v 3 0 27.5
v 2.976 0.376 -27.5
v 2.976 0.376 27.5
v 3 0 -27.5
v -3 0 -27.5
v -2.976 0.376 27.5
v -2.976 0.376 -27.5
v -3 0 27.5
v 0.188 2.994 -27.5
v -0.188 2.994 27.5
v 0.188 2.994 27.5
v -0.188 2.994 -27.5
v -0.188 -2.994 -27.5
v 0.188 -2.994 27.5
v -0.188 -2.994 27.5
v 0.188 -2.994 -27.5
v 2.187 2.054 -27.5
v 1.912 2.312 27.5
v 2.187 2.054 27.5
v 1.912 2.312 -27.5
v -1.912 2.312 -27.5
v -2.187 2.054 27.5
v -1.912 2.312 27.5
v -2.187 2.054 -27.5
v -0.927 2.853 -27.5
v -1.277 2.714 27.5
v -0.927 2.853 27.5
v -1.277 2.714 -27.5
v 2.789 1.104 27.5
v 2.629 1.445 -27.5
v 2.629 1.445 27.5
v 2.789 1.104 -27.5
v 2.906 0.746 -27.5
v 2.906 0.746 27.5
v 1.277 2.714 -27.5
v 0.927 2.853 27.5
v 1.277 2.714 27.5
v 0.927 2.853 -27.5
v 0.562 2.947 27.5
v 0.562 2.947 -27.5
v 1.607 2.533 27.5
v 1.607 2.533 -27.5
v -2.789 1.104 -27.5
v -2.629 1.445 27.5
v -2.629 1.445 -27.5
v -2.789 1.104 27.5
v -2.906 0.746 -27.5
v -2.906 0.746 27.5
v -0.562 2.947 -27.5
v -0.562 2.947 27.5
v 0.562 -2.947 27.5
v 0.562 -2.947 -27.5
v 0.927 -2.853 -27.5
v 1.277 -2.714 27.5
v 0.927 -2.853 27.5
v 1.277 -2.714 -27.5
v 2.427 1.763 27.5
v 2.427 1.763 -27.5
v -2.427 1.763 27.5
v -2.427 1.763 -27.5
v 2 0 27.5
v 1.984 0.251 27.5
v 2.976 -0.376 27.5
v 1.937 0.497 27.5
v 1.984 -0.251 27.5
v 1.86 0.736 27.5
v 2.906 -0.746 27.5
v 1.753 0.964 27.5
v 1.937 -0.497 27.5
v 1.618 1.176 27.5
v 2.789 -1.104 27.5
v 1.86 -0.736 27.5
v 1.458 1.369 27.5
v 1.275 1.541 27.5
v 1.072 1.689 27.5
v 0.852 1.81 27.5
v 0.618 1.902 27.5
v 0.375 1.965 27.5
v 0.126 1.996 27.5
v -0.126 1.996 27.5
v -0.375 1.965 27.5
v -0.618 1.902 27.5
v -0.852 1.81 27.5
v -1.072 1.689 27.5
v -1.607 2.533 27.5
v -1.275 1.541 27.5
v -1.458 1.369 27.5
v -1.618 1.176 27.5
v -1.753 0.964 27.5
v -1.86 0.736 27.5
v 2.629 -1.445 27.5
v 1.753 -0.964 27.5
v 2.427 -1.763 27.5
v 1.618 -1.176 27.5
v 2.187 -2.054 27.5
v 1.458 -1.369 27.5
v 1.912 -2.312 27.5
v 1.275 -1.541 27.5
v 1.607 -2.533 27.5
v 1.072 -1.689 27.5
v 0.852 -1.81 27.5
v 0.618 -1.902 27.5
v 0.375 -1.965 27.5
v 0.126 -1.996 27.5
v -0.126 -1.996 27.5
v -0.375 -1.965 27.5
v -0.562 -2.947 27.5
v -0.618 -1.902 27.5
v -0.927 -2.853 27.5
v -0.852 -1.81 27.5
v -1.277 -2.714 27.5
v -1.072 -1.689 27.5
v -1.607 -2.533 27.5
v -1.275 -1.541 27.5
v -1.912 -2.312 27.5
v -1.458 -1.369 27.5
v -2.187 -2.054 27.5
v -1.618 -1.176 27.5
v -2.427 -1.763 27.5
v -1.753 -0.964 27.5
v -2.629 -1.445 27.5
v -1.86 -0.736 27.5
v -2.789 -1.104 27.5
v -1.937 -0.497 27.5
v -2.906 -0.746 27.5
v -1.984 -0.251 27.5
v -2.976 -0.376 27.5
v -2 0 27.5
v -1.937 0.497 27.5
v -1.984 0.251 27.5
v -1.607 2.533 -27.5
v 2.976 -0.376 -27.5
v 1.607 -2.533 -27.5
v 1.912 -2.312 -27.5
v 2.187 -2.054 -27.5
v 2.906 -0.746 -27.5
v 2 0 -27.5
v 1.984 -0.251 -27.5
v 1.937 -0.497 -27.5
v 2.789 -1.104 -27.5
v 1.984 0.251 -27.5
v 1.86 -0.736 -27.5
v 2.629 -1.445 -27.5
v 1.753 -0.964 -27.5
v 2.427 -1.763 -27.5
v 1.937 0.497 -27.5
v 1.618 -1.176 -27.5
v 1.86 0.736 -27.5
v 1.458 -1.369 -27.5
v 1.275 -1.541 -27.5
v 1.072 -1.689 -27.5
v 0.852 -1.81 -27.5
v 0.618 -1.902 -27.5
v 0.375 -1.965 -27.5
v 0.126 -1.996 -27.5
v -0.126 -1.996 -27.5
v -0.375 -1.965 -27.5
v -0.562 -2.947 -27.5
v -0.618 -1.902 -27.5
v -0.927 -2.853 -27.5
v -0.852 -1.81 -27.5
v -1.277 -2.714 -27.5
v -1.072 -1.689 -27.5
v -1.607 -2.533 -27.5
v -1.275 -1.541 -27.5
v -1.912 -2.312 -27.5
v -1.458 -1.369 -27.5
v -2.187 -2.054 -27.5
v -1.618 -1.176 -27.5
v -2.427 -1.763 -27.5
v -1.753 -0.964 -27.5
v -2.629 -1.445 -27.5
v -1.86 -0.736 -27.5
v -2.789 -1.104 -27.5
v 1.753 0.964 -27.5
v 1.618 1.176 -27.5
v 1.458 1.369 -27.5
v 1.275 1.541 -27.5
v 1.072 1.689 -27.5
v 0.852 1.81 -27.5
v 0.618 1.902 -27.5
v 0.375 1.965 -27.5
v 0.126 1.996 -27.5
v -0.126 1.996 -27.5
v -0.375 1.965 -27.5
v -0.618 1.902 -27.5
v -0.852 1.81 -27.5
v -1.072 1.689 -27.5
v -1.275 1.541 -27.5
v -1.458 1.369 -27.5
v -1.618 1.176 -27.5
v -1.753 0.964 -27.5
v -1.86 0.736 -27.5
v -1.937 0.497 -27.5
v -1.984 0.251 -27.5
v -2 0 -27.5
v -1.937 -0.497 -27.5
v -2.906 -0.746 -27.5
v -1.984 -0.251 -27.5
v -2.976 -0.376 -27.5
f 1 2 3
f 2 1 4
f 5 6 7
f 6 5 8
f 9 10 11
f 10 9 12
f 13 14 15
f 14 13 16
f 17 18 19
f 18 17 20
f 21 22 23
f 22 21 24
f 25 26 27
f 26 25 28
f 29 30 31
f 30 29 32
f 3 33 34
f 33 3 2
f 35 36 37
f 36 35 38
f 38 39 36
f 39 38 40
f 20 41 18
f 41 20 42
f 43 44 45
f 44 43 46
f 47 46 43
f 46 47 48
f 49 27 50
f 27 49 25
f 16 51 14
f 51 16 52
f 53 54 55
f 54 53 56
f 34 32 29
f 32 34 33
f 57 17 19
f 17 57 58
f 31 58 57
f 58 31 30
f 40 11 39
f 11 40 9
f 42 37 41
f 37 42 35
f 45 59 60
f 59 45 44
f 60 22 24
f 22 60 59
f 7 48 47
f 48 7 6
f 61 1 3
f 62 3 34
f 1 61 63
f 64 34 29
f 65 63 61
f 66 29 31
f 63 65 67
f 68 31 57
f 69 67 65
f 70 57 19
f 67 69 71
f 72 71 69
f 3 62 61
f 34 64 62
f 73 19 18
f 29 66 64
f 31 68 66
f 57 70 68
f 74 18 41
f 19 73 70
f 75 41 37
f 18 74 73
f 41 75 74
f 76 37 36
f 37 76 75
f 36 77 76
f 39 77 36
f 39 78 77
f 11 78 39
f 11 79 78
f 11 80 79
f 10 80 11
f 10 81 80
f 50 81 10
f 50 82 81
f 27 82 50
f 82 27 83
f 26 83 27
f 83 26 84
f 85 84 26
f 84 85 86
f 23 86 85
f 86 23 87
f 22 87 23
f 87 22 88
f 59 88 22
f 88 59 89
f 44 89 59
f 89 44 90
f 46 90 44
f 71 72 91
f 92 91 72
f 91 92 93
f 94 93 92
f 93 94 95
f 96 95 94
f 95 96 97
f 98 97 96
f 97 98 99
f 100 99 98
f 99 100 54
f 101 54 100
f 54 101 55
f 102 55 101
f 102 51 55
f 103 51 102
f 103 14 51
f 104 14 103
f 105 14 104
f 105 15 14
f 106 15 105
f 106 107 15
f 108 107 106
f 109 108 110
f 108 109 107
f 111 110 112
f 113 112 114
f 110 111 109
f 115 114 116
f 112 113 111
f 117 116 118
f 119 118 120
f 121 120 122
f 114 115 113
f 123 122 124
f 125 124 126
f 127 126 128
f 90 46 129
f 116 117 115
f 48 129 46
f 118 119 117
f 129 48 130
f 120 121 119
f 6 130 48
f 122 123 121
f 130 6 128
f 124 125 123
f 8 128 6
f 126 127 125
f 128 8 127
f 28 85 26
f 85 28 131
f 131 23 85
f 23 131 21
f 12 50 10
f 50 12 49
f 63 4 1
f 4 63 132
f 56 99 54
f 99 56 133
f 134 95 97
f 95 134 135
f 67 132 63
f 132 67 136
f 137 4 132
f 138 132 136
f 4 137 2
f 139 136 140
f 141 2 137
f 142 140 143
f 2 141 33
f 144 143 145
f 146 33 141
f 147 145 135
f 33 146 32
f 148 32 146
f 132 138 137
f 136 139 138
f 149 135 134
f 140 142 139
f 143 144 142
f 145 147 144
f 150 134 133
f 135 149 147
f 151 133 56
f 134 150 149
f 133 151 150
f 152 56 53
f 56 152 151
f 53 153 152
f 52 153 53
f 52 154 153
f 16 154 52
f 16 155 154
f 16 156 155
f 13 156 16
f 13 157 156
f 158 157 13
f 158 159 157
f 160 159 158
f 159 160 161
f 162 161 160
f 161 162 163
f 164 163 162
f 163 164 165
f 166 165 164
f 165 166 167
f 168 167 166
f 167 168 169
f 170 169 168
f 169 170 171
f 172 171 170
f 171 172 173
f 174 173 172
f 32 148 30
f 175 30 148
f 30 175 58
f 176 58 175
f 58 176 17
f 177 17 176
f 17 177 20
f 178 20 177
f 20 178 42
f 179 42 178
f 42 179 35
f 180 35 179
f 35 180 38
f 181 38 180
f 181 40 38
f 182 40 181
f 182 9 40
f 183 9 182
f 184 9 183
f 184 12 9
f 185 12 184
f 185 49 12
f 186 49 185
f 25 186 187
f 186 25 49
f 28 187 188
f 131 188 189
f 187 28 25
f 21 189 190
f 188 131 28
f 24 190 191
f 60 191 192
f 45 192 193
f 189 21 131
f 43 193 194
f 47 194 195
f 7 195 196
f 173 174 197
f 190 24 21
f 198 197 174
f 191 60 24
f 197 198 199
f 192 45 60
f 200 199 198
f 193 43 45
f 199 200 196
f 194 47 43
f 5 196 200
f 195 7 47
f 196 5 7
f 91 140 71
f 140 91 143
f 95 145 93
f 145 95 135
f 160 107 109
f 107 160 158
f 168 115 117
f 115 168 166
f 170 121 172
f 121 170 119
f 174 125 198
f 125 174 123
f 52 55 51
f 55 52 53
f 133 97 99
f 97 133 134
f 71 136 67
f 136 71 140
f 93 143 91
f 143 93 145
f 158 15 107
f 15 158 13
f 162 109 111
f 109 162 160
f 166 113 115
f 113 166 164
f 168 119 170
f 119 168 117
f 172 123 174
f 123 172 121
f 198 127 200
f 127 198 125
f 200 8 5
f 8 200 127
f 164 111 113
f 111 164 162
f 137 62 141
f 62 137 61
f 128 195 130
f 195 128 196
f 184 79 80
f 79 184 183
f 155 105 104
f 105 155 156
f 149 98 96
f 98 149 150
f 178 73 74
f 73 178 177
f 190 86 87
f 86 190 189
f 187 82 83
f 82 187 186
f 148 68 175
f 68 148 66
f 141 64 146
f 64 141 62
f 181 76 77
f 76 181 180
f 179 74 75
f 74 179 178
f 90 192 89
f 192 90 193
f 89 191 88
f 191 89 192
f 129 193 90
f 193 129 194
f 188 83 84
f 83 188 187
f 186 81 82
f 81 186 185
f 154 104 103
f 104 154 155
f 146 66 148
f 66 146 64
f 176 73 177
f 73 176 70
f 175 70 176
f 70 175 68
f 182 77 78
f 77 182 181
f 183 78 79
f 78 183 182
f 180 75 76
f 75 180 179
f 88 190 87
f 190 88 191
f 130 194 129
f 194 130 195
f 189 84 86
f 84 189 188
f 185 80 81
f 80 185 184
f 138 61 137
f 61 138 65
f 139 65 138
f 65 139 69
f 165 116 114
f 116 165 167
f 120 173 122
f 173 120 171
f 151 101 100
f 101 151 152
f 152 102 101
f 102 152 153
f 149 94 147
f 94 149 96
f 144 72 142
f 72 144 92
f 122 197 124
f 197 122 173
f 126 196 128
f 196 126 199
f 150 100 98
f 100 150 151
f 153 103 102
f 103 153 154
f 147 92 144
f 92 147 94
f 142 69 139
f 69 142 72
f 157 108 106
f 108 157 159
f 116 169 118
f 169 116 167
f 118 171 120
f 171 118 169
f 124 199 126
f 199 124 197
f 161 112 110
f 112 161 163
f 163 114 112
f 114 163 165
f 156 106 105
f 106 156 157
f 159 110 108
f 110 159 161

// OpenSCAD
$fn = 50;


difference() {
	union() {
		translate(v = [0, 0, -27.5000000000]) {
			cylinder(h = 55, r = 3.0000000000);
		}
	}
	union() {
		translate(v = [0, 0, -100.0000000000]) {
			cylinder(h = 200, r = 2);
		}
	}
}
